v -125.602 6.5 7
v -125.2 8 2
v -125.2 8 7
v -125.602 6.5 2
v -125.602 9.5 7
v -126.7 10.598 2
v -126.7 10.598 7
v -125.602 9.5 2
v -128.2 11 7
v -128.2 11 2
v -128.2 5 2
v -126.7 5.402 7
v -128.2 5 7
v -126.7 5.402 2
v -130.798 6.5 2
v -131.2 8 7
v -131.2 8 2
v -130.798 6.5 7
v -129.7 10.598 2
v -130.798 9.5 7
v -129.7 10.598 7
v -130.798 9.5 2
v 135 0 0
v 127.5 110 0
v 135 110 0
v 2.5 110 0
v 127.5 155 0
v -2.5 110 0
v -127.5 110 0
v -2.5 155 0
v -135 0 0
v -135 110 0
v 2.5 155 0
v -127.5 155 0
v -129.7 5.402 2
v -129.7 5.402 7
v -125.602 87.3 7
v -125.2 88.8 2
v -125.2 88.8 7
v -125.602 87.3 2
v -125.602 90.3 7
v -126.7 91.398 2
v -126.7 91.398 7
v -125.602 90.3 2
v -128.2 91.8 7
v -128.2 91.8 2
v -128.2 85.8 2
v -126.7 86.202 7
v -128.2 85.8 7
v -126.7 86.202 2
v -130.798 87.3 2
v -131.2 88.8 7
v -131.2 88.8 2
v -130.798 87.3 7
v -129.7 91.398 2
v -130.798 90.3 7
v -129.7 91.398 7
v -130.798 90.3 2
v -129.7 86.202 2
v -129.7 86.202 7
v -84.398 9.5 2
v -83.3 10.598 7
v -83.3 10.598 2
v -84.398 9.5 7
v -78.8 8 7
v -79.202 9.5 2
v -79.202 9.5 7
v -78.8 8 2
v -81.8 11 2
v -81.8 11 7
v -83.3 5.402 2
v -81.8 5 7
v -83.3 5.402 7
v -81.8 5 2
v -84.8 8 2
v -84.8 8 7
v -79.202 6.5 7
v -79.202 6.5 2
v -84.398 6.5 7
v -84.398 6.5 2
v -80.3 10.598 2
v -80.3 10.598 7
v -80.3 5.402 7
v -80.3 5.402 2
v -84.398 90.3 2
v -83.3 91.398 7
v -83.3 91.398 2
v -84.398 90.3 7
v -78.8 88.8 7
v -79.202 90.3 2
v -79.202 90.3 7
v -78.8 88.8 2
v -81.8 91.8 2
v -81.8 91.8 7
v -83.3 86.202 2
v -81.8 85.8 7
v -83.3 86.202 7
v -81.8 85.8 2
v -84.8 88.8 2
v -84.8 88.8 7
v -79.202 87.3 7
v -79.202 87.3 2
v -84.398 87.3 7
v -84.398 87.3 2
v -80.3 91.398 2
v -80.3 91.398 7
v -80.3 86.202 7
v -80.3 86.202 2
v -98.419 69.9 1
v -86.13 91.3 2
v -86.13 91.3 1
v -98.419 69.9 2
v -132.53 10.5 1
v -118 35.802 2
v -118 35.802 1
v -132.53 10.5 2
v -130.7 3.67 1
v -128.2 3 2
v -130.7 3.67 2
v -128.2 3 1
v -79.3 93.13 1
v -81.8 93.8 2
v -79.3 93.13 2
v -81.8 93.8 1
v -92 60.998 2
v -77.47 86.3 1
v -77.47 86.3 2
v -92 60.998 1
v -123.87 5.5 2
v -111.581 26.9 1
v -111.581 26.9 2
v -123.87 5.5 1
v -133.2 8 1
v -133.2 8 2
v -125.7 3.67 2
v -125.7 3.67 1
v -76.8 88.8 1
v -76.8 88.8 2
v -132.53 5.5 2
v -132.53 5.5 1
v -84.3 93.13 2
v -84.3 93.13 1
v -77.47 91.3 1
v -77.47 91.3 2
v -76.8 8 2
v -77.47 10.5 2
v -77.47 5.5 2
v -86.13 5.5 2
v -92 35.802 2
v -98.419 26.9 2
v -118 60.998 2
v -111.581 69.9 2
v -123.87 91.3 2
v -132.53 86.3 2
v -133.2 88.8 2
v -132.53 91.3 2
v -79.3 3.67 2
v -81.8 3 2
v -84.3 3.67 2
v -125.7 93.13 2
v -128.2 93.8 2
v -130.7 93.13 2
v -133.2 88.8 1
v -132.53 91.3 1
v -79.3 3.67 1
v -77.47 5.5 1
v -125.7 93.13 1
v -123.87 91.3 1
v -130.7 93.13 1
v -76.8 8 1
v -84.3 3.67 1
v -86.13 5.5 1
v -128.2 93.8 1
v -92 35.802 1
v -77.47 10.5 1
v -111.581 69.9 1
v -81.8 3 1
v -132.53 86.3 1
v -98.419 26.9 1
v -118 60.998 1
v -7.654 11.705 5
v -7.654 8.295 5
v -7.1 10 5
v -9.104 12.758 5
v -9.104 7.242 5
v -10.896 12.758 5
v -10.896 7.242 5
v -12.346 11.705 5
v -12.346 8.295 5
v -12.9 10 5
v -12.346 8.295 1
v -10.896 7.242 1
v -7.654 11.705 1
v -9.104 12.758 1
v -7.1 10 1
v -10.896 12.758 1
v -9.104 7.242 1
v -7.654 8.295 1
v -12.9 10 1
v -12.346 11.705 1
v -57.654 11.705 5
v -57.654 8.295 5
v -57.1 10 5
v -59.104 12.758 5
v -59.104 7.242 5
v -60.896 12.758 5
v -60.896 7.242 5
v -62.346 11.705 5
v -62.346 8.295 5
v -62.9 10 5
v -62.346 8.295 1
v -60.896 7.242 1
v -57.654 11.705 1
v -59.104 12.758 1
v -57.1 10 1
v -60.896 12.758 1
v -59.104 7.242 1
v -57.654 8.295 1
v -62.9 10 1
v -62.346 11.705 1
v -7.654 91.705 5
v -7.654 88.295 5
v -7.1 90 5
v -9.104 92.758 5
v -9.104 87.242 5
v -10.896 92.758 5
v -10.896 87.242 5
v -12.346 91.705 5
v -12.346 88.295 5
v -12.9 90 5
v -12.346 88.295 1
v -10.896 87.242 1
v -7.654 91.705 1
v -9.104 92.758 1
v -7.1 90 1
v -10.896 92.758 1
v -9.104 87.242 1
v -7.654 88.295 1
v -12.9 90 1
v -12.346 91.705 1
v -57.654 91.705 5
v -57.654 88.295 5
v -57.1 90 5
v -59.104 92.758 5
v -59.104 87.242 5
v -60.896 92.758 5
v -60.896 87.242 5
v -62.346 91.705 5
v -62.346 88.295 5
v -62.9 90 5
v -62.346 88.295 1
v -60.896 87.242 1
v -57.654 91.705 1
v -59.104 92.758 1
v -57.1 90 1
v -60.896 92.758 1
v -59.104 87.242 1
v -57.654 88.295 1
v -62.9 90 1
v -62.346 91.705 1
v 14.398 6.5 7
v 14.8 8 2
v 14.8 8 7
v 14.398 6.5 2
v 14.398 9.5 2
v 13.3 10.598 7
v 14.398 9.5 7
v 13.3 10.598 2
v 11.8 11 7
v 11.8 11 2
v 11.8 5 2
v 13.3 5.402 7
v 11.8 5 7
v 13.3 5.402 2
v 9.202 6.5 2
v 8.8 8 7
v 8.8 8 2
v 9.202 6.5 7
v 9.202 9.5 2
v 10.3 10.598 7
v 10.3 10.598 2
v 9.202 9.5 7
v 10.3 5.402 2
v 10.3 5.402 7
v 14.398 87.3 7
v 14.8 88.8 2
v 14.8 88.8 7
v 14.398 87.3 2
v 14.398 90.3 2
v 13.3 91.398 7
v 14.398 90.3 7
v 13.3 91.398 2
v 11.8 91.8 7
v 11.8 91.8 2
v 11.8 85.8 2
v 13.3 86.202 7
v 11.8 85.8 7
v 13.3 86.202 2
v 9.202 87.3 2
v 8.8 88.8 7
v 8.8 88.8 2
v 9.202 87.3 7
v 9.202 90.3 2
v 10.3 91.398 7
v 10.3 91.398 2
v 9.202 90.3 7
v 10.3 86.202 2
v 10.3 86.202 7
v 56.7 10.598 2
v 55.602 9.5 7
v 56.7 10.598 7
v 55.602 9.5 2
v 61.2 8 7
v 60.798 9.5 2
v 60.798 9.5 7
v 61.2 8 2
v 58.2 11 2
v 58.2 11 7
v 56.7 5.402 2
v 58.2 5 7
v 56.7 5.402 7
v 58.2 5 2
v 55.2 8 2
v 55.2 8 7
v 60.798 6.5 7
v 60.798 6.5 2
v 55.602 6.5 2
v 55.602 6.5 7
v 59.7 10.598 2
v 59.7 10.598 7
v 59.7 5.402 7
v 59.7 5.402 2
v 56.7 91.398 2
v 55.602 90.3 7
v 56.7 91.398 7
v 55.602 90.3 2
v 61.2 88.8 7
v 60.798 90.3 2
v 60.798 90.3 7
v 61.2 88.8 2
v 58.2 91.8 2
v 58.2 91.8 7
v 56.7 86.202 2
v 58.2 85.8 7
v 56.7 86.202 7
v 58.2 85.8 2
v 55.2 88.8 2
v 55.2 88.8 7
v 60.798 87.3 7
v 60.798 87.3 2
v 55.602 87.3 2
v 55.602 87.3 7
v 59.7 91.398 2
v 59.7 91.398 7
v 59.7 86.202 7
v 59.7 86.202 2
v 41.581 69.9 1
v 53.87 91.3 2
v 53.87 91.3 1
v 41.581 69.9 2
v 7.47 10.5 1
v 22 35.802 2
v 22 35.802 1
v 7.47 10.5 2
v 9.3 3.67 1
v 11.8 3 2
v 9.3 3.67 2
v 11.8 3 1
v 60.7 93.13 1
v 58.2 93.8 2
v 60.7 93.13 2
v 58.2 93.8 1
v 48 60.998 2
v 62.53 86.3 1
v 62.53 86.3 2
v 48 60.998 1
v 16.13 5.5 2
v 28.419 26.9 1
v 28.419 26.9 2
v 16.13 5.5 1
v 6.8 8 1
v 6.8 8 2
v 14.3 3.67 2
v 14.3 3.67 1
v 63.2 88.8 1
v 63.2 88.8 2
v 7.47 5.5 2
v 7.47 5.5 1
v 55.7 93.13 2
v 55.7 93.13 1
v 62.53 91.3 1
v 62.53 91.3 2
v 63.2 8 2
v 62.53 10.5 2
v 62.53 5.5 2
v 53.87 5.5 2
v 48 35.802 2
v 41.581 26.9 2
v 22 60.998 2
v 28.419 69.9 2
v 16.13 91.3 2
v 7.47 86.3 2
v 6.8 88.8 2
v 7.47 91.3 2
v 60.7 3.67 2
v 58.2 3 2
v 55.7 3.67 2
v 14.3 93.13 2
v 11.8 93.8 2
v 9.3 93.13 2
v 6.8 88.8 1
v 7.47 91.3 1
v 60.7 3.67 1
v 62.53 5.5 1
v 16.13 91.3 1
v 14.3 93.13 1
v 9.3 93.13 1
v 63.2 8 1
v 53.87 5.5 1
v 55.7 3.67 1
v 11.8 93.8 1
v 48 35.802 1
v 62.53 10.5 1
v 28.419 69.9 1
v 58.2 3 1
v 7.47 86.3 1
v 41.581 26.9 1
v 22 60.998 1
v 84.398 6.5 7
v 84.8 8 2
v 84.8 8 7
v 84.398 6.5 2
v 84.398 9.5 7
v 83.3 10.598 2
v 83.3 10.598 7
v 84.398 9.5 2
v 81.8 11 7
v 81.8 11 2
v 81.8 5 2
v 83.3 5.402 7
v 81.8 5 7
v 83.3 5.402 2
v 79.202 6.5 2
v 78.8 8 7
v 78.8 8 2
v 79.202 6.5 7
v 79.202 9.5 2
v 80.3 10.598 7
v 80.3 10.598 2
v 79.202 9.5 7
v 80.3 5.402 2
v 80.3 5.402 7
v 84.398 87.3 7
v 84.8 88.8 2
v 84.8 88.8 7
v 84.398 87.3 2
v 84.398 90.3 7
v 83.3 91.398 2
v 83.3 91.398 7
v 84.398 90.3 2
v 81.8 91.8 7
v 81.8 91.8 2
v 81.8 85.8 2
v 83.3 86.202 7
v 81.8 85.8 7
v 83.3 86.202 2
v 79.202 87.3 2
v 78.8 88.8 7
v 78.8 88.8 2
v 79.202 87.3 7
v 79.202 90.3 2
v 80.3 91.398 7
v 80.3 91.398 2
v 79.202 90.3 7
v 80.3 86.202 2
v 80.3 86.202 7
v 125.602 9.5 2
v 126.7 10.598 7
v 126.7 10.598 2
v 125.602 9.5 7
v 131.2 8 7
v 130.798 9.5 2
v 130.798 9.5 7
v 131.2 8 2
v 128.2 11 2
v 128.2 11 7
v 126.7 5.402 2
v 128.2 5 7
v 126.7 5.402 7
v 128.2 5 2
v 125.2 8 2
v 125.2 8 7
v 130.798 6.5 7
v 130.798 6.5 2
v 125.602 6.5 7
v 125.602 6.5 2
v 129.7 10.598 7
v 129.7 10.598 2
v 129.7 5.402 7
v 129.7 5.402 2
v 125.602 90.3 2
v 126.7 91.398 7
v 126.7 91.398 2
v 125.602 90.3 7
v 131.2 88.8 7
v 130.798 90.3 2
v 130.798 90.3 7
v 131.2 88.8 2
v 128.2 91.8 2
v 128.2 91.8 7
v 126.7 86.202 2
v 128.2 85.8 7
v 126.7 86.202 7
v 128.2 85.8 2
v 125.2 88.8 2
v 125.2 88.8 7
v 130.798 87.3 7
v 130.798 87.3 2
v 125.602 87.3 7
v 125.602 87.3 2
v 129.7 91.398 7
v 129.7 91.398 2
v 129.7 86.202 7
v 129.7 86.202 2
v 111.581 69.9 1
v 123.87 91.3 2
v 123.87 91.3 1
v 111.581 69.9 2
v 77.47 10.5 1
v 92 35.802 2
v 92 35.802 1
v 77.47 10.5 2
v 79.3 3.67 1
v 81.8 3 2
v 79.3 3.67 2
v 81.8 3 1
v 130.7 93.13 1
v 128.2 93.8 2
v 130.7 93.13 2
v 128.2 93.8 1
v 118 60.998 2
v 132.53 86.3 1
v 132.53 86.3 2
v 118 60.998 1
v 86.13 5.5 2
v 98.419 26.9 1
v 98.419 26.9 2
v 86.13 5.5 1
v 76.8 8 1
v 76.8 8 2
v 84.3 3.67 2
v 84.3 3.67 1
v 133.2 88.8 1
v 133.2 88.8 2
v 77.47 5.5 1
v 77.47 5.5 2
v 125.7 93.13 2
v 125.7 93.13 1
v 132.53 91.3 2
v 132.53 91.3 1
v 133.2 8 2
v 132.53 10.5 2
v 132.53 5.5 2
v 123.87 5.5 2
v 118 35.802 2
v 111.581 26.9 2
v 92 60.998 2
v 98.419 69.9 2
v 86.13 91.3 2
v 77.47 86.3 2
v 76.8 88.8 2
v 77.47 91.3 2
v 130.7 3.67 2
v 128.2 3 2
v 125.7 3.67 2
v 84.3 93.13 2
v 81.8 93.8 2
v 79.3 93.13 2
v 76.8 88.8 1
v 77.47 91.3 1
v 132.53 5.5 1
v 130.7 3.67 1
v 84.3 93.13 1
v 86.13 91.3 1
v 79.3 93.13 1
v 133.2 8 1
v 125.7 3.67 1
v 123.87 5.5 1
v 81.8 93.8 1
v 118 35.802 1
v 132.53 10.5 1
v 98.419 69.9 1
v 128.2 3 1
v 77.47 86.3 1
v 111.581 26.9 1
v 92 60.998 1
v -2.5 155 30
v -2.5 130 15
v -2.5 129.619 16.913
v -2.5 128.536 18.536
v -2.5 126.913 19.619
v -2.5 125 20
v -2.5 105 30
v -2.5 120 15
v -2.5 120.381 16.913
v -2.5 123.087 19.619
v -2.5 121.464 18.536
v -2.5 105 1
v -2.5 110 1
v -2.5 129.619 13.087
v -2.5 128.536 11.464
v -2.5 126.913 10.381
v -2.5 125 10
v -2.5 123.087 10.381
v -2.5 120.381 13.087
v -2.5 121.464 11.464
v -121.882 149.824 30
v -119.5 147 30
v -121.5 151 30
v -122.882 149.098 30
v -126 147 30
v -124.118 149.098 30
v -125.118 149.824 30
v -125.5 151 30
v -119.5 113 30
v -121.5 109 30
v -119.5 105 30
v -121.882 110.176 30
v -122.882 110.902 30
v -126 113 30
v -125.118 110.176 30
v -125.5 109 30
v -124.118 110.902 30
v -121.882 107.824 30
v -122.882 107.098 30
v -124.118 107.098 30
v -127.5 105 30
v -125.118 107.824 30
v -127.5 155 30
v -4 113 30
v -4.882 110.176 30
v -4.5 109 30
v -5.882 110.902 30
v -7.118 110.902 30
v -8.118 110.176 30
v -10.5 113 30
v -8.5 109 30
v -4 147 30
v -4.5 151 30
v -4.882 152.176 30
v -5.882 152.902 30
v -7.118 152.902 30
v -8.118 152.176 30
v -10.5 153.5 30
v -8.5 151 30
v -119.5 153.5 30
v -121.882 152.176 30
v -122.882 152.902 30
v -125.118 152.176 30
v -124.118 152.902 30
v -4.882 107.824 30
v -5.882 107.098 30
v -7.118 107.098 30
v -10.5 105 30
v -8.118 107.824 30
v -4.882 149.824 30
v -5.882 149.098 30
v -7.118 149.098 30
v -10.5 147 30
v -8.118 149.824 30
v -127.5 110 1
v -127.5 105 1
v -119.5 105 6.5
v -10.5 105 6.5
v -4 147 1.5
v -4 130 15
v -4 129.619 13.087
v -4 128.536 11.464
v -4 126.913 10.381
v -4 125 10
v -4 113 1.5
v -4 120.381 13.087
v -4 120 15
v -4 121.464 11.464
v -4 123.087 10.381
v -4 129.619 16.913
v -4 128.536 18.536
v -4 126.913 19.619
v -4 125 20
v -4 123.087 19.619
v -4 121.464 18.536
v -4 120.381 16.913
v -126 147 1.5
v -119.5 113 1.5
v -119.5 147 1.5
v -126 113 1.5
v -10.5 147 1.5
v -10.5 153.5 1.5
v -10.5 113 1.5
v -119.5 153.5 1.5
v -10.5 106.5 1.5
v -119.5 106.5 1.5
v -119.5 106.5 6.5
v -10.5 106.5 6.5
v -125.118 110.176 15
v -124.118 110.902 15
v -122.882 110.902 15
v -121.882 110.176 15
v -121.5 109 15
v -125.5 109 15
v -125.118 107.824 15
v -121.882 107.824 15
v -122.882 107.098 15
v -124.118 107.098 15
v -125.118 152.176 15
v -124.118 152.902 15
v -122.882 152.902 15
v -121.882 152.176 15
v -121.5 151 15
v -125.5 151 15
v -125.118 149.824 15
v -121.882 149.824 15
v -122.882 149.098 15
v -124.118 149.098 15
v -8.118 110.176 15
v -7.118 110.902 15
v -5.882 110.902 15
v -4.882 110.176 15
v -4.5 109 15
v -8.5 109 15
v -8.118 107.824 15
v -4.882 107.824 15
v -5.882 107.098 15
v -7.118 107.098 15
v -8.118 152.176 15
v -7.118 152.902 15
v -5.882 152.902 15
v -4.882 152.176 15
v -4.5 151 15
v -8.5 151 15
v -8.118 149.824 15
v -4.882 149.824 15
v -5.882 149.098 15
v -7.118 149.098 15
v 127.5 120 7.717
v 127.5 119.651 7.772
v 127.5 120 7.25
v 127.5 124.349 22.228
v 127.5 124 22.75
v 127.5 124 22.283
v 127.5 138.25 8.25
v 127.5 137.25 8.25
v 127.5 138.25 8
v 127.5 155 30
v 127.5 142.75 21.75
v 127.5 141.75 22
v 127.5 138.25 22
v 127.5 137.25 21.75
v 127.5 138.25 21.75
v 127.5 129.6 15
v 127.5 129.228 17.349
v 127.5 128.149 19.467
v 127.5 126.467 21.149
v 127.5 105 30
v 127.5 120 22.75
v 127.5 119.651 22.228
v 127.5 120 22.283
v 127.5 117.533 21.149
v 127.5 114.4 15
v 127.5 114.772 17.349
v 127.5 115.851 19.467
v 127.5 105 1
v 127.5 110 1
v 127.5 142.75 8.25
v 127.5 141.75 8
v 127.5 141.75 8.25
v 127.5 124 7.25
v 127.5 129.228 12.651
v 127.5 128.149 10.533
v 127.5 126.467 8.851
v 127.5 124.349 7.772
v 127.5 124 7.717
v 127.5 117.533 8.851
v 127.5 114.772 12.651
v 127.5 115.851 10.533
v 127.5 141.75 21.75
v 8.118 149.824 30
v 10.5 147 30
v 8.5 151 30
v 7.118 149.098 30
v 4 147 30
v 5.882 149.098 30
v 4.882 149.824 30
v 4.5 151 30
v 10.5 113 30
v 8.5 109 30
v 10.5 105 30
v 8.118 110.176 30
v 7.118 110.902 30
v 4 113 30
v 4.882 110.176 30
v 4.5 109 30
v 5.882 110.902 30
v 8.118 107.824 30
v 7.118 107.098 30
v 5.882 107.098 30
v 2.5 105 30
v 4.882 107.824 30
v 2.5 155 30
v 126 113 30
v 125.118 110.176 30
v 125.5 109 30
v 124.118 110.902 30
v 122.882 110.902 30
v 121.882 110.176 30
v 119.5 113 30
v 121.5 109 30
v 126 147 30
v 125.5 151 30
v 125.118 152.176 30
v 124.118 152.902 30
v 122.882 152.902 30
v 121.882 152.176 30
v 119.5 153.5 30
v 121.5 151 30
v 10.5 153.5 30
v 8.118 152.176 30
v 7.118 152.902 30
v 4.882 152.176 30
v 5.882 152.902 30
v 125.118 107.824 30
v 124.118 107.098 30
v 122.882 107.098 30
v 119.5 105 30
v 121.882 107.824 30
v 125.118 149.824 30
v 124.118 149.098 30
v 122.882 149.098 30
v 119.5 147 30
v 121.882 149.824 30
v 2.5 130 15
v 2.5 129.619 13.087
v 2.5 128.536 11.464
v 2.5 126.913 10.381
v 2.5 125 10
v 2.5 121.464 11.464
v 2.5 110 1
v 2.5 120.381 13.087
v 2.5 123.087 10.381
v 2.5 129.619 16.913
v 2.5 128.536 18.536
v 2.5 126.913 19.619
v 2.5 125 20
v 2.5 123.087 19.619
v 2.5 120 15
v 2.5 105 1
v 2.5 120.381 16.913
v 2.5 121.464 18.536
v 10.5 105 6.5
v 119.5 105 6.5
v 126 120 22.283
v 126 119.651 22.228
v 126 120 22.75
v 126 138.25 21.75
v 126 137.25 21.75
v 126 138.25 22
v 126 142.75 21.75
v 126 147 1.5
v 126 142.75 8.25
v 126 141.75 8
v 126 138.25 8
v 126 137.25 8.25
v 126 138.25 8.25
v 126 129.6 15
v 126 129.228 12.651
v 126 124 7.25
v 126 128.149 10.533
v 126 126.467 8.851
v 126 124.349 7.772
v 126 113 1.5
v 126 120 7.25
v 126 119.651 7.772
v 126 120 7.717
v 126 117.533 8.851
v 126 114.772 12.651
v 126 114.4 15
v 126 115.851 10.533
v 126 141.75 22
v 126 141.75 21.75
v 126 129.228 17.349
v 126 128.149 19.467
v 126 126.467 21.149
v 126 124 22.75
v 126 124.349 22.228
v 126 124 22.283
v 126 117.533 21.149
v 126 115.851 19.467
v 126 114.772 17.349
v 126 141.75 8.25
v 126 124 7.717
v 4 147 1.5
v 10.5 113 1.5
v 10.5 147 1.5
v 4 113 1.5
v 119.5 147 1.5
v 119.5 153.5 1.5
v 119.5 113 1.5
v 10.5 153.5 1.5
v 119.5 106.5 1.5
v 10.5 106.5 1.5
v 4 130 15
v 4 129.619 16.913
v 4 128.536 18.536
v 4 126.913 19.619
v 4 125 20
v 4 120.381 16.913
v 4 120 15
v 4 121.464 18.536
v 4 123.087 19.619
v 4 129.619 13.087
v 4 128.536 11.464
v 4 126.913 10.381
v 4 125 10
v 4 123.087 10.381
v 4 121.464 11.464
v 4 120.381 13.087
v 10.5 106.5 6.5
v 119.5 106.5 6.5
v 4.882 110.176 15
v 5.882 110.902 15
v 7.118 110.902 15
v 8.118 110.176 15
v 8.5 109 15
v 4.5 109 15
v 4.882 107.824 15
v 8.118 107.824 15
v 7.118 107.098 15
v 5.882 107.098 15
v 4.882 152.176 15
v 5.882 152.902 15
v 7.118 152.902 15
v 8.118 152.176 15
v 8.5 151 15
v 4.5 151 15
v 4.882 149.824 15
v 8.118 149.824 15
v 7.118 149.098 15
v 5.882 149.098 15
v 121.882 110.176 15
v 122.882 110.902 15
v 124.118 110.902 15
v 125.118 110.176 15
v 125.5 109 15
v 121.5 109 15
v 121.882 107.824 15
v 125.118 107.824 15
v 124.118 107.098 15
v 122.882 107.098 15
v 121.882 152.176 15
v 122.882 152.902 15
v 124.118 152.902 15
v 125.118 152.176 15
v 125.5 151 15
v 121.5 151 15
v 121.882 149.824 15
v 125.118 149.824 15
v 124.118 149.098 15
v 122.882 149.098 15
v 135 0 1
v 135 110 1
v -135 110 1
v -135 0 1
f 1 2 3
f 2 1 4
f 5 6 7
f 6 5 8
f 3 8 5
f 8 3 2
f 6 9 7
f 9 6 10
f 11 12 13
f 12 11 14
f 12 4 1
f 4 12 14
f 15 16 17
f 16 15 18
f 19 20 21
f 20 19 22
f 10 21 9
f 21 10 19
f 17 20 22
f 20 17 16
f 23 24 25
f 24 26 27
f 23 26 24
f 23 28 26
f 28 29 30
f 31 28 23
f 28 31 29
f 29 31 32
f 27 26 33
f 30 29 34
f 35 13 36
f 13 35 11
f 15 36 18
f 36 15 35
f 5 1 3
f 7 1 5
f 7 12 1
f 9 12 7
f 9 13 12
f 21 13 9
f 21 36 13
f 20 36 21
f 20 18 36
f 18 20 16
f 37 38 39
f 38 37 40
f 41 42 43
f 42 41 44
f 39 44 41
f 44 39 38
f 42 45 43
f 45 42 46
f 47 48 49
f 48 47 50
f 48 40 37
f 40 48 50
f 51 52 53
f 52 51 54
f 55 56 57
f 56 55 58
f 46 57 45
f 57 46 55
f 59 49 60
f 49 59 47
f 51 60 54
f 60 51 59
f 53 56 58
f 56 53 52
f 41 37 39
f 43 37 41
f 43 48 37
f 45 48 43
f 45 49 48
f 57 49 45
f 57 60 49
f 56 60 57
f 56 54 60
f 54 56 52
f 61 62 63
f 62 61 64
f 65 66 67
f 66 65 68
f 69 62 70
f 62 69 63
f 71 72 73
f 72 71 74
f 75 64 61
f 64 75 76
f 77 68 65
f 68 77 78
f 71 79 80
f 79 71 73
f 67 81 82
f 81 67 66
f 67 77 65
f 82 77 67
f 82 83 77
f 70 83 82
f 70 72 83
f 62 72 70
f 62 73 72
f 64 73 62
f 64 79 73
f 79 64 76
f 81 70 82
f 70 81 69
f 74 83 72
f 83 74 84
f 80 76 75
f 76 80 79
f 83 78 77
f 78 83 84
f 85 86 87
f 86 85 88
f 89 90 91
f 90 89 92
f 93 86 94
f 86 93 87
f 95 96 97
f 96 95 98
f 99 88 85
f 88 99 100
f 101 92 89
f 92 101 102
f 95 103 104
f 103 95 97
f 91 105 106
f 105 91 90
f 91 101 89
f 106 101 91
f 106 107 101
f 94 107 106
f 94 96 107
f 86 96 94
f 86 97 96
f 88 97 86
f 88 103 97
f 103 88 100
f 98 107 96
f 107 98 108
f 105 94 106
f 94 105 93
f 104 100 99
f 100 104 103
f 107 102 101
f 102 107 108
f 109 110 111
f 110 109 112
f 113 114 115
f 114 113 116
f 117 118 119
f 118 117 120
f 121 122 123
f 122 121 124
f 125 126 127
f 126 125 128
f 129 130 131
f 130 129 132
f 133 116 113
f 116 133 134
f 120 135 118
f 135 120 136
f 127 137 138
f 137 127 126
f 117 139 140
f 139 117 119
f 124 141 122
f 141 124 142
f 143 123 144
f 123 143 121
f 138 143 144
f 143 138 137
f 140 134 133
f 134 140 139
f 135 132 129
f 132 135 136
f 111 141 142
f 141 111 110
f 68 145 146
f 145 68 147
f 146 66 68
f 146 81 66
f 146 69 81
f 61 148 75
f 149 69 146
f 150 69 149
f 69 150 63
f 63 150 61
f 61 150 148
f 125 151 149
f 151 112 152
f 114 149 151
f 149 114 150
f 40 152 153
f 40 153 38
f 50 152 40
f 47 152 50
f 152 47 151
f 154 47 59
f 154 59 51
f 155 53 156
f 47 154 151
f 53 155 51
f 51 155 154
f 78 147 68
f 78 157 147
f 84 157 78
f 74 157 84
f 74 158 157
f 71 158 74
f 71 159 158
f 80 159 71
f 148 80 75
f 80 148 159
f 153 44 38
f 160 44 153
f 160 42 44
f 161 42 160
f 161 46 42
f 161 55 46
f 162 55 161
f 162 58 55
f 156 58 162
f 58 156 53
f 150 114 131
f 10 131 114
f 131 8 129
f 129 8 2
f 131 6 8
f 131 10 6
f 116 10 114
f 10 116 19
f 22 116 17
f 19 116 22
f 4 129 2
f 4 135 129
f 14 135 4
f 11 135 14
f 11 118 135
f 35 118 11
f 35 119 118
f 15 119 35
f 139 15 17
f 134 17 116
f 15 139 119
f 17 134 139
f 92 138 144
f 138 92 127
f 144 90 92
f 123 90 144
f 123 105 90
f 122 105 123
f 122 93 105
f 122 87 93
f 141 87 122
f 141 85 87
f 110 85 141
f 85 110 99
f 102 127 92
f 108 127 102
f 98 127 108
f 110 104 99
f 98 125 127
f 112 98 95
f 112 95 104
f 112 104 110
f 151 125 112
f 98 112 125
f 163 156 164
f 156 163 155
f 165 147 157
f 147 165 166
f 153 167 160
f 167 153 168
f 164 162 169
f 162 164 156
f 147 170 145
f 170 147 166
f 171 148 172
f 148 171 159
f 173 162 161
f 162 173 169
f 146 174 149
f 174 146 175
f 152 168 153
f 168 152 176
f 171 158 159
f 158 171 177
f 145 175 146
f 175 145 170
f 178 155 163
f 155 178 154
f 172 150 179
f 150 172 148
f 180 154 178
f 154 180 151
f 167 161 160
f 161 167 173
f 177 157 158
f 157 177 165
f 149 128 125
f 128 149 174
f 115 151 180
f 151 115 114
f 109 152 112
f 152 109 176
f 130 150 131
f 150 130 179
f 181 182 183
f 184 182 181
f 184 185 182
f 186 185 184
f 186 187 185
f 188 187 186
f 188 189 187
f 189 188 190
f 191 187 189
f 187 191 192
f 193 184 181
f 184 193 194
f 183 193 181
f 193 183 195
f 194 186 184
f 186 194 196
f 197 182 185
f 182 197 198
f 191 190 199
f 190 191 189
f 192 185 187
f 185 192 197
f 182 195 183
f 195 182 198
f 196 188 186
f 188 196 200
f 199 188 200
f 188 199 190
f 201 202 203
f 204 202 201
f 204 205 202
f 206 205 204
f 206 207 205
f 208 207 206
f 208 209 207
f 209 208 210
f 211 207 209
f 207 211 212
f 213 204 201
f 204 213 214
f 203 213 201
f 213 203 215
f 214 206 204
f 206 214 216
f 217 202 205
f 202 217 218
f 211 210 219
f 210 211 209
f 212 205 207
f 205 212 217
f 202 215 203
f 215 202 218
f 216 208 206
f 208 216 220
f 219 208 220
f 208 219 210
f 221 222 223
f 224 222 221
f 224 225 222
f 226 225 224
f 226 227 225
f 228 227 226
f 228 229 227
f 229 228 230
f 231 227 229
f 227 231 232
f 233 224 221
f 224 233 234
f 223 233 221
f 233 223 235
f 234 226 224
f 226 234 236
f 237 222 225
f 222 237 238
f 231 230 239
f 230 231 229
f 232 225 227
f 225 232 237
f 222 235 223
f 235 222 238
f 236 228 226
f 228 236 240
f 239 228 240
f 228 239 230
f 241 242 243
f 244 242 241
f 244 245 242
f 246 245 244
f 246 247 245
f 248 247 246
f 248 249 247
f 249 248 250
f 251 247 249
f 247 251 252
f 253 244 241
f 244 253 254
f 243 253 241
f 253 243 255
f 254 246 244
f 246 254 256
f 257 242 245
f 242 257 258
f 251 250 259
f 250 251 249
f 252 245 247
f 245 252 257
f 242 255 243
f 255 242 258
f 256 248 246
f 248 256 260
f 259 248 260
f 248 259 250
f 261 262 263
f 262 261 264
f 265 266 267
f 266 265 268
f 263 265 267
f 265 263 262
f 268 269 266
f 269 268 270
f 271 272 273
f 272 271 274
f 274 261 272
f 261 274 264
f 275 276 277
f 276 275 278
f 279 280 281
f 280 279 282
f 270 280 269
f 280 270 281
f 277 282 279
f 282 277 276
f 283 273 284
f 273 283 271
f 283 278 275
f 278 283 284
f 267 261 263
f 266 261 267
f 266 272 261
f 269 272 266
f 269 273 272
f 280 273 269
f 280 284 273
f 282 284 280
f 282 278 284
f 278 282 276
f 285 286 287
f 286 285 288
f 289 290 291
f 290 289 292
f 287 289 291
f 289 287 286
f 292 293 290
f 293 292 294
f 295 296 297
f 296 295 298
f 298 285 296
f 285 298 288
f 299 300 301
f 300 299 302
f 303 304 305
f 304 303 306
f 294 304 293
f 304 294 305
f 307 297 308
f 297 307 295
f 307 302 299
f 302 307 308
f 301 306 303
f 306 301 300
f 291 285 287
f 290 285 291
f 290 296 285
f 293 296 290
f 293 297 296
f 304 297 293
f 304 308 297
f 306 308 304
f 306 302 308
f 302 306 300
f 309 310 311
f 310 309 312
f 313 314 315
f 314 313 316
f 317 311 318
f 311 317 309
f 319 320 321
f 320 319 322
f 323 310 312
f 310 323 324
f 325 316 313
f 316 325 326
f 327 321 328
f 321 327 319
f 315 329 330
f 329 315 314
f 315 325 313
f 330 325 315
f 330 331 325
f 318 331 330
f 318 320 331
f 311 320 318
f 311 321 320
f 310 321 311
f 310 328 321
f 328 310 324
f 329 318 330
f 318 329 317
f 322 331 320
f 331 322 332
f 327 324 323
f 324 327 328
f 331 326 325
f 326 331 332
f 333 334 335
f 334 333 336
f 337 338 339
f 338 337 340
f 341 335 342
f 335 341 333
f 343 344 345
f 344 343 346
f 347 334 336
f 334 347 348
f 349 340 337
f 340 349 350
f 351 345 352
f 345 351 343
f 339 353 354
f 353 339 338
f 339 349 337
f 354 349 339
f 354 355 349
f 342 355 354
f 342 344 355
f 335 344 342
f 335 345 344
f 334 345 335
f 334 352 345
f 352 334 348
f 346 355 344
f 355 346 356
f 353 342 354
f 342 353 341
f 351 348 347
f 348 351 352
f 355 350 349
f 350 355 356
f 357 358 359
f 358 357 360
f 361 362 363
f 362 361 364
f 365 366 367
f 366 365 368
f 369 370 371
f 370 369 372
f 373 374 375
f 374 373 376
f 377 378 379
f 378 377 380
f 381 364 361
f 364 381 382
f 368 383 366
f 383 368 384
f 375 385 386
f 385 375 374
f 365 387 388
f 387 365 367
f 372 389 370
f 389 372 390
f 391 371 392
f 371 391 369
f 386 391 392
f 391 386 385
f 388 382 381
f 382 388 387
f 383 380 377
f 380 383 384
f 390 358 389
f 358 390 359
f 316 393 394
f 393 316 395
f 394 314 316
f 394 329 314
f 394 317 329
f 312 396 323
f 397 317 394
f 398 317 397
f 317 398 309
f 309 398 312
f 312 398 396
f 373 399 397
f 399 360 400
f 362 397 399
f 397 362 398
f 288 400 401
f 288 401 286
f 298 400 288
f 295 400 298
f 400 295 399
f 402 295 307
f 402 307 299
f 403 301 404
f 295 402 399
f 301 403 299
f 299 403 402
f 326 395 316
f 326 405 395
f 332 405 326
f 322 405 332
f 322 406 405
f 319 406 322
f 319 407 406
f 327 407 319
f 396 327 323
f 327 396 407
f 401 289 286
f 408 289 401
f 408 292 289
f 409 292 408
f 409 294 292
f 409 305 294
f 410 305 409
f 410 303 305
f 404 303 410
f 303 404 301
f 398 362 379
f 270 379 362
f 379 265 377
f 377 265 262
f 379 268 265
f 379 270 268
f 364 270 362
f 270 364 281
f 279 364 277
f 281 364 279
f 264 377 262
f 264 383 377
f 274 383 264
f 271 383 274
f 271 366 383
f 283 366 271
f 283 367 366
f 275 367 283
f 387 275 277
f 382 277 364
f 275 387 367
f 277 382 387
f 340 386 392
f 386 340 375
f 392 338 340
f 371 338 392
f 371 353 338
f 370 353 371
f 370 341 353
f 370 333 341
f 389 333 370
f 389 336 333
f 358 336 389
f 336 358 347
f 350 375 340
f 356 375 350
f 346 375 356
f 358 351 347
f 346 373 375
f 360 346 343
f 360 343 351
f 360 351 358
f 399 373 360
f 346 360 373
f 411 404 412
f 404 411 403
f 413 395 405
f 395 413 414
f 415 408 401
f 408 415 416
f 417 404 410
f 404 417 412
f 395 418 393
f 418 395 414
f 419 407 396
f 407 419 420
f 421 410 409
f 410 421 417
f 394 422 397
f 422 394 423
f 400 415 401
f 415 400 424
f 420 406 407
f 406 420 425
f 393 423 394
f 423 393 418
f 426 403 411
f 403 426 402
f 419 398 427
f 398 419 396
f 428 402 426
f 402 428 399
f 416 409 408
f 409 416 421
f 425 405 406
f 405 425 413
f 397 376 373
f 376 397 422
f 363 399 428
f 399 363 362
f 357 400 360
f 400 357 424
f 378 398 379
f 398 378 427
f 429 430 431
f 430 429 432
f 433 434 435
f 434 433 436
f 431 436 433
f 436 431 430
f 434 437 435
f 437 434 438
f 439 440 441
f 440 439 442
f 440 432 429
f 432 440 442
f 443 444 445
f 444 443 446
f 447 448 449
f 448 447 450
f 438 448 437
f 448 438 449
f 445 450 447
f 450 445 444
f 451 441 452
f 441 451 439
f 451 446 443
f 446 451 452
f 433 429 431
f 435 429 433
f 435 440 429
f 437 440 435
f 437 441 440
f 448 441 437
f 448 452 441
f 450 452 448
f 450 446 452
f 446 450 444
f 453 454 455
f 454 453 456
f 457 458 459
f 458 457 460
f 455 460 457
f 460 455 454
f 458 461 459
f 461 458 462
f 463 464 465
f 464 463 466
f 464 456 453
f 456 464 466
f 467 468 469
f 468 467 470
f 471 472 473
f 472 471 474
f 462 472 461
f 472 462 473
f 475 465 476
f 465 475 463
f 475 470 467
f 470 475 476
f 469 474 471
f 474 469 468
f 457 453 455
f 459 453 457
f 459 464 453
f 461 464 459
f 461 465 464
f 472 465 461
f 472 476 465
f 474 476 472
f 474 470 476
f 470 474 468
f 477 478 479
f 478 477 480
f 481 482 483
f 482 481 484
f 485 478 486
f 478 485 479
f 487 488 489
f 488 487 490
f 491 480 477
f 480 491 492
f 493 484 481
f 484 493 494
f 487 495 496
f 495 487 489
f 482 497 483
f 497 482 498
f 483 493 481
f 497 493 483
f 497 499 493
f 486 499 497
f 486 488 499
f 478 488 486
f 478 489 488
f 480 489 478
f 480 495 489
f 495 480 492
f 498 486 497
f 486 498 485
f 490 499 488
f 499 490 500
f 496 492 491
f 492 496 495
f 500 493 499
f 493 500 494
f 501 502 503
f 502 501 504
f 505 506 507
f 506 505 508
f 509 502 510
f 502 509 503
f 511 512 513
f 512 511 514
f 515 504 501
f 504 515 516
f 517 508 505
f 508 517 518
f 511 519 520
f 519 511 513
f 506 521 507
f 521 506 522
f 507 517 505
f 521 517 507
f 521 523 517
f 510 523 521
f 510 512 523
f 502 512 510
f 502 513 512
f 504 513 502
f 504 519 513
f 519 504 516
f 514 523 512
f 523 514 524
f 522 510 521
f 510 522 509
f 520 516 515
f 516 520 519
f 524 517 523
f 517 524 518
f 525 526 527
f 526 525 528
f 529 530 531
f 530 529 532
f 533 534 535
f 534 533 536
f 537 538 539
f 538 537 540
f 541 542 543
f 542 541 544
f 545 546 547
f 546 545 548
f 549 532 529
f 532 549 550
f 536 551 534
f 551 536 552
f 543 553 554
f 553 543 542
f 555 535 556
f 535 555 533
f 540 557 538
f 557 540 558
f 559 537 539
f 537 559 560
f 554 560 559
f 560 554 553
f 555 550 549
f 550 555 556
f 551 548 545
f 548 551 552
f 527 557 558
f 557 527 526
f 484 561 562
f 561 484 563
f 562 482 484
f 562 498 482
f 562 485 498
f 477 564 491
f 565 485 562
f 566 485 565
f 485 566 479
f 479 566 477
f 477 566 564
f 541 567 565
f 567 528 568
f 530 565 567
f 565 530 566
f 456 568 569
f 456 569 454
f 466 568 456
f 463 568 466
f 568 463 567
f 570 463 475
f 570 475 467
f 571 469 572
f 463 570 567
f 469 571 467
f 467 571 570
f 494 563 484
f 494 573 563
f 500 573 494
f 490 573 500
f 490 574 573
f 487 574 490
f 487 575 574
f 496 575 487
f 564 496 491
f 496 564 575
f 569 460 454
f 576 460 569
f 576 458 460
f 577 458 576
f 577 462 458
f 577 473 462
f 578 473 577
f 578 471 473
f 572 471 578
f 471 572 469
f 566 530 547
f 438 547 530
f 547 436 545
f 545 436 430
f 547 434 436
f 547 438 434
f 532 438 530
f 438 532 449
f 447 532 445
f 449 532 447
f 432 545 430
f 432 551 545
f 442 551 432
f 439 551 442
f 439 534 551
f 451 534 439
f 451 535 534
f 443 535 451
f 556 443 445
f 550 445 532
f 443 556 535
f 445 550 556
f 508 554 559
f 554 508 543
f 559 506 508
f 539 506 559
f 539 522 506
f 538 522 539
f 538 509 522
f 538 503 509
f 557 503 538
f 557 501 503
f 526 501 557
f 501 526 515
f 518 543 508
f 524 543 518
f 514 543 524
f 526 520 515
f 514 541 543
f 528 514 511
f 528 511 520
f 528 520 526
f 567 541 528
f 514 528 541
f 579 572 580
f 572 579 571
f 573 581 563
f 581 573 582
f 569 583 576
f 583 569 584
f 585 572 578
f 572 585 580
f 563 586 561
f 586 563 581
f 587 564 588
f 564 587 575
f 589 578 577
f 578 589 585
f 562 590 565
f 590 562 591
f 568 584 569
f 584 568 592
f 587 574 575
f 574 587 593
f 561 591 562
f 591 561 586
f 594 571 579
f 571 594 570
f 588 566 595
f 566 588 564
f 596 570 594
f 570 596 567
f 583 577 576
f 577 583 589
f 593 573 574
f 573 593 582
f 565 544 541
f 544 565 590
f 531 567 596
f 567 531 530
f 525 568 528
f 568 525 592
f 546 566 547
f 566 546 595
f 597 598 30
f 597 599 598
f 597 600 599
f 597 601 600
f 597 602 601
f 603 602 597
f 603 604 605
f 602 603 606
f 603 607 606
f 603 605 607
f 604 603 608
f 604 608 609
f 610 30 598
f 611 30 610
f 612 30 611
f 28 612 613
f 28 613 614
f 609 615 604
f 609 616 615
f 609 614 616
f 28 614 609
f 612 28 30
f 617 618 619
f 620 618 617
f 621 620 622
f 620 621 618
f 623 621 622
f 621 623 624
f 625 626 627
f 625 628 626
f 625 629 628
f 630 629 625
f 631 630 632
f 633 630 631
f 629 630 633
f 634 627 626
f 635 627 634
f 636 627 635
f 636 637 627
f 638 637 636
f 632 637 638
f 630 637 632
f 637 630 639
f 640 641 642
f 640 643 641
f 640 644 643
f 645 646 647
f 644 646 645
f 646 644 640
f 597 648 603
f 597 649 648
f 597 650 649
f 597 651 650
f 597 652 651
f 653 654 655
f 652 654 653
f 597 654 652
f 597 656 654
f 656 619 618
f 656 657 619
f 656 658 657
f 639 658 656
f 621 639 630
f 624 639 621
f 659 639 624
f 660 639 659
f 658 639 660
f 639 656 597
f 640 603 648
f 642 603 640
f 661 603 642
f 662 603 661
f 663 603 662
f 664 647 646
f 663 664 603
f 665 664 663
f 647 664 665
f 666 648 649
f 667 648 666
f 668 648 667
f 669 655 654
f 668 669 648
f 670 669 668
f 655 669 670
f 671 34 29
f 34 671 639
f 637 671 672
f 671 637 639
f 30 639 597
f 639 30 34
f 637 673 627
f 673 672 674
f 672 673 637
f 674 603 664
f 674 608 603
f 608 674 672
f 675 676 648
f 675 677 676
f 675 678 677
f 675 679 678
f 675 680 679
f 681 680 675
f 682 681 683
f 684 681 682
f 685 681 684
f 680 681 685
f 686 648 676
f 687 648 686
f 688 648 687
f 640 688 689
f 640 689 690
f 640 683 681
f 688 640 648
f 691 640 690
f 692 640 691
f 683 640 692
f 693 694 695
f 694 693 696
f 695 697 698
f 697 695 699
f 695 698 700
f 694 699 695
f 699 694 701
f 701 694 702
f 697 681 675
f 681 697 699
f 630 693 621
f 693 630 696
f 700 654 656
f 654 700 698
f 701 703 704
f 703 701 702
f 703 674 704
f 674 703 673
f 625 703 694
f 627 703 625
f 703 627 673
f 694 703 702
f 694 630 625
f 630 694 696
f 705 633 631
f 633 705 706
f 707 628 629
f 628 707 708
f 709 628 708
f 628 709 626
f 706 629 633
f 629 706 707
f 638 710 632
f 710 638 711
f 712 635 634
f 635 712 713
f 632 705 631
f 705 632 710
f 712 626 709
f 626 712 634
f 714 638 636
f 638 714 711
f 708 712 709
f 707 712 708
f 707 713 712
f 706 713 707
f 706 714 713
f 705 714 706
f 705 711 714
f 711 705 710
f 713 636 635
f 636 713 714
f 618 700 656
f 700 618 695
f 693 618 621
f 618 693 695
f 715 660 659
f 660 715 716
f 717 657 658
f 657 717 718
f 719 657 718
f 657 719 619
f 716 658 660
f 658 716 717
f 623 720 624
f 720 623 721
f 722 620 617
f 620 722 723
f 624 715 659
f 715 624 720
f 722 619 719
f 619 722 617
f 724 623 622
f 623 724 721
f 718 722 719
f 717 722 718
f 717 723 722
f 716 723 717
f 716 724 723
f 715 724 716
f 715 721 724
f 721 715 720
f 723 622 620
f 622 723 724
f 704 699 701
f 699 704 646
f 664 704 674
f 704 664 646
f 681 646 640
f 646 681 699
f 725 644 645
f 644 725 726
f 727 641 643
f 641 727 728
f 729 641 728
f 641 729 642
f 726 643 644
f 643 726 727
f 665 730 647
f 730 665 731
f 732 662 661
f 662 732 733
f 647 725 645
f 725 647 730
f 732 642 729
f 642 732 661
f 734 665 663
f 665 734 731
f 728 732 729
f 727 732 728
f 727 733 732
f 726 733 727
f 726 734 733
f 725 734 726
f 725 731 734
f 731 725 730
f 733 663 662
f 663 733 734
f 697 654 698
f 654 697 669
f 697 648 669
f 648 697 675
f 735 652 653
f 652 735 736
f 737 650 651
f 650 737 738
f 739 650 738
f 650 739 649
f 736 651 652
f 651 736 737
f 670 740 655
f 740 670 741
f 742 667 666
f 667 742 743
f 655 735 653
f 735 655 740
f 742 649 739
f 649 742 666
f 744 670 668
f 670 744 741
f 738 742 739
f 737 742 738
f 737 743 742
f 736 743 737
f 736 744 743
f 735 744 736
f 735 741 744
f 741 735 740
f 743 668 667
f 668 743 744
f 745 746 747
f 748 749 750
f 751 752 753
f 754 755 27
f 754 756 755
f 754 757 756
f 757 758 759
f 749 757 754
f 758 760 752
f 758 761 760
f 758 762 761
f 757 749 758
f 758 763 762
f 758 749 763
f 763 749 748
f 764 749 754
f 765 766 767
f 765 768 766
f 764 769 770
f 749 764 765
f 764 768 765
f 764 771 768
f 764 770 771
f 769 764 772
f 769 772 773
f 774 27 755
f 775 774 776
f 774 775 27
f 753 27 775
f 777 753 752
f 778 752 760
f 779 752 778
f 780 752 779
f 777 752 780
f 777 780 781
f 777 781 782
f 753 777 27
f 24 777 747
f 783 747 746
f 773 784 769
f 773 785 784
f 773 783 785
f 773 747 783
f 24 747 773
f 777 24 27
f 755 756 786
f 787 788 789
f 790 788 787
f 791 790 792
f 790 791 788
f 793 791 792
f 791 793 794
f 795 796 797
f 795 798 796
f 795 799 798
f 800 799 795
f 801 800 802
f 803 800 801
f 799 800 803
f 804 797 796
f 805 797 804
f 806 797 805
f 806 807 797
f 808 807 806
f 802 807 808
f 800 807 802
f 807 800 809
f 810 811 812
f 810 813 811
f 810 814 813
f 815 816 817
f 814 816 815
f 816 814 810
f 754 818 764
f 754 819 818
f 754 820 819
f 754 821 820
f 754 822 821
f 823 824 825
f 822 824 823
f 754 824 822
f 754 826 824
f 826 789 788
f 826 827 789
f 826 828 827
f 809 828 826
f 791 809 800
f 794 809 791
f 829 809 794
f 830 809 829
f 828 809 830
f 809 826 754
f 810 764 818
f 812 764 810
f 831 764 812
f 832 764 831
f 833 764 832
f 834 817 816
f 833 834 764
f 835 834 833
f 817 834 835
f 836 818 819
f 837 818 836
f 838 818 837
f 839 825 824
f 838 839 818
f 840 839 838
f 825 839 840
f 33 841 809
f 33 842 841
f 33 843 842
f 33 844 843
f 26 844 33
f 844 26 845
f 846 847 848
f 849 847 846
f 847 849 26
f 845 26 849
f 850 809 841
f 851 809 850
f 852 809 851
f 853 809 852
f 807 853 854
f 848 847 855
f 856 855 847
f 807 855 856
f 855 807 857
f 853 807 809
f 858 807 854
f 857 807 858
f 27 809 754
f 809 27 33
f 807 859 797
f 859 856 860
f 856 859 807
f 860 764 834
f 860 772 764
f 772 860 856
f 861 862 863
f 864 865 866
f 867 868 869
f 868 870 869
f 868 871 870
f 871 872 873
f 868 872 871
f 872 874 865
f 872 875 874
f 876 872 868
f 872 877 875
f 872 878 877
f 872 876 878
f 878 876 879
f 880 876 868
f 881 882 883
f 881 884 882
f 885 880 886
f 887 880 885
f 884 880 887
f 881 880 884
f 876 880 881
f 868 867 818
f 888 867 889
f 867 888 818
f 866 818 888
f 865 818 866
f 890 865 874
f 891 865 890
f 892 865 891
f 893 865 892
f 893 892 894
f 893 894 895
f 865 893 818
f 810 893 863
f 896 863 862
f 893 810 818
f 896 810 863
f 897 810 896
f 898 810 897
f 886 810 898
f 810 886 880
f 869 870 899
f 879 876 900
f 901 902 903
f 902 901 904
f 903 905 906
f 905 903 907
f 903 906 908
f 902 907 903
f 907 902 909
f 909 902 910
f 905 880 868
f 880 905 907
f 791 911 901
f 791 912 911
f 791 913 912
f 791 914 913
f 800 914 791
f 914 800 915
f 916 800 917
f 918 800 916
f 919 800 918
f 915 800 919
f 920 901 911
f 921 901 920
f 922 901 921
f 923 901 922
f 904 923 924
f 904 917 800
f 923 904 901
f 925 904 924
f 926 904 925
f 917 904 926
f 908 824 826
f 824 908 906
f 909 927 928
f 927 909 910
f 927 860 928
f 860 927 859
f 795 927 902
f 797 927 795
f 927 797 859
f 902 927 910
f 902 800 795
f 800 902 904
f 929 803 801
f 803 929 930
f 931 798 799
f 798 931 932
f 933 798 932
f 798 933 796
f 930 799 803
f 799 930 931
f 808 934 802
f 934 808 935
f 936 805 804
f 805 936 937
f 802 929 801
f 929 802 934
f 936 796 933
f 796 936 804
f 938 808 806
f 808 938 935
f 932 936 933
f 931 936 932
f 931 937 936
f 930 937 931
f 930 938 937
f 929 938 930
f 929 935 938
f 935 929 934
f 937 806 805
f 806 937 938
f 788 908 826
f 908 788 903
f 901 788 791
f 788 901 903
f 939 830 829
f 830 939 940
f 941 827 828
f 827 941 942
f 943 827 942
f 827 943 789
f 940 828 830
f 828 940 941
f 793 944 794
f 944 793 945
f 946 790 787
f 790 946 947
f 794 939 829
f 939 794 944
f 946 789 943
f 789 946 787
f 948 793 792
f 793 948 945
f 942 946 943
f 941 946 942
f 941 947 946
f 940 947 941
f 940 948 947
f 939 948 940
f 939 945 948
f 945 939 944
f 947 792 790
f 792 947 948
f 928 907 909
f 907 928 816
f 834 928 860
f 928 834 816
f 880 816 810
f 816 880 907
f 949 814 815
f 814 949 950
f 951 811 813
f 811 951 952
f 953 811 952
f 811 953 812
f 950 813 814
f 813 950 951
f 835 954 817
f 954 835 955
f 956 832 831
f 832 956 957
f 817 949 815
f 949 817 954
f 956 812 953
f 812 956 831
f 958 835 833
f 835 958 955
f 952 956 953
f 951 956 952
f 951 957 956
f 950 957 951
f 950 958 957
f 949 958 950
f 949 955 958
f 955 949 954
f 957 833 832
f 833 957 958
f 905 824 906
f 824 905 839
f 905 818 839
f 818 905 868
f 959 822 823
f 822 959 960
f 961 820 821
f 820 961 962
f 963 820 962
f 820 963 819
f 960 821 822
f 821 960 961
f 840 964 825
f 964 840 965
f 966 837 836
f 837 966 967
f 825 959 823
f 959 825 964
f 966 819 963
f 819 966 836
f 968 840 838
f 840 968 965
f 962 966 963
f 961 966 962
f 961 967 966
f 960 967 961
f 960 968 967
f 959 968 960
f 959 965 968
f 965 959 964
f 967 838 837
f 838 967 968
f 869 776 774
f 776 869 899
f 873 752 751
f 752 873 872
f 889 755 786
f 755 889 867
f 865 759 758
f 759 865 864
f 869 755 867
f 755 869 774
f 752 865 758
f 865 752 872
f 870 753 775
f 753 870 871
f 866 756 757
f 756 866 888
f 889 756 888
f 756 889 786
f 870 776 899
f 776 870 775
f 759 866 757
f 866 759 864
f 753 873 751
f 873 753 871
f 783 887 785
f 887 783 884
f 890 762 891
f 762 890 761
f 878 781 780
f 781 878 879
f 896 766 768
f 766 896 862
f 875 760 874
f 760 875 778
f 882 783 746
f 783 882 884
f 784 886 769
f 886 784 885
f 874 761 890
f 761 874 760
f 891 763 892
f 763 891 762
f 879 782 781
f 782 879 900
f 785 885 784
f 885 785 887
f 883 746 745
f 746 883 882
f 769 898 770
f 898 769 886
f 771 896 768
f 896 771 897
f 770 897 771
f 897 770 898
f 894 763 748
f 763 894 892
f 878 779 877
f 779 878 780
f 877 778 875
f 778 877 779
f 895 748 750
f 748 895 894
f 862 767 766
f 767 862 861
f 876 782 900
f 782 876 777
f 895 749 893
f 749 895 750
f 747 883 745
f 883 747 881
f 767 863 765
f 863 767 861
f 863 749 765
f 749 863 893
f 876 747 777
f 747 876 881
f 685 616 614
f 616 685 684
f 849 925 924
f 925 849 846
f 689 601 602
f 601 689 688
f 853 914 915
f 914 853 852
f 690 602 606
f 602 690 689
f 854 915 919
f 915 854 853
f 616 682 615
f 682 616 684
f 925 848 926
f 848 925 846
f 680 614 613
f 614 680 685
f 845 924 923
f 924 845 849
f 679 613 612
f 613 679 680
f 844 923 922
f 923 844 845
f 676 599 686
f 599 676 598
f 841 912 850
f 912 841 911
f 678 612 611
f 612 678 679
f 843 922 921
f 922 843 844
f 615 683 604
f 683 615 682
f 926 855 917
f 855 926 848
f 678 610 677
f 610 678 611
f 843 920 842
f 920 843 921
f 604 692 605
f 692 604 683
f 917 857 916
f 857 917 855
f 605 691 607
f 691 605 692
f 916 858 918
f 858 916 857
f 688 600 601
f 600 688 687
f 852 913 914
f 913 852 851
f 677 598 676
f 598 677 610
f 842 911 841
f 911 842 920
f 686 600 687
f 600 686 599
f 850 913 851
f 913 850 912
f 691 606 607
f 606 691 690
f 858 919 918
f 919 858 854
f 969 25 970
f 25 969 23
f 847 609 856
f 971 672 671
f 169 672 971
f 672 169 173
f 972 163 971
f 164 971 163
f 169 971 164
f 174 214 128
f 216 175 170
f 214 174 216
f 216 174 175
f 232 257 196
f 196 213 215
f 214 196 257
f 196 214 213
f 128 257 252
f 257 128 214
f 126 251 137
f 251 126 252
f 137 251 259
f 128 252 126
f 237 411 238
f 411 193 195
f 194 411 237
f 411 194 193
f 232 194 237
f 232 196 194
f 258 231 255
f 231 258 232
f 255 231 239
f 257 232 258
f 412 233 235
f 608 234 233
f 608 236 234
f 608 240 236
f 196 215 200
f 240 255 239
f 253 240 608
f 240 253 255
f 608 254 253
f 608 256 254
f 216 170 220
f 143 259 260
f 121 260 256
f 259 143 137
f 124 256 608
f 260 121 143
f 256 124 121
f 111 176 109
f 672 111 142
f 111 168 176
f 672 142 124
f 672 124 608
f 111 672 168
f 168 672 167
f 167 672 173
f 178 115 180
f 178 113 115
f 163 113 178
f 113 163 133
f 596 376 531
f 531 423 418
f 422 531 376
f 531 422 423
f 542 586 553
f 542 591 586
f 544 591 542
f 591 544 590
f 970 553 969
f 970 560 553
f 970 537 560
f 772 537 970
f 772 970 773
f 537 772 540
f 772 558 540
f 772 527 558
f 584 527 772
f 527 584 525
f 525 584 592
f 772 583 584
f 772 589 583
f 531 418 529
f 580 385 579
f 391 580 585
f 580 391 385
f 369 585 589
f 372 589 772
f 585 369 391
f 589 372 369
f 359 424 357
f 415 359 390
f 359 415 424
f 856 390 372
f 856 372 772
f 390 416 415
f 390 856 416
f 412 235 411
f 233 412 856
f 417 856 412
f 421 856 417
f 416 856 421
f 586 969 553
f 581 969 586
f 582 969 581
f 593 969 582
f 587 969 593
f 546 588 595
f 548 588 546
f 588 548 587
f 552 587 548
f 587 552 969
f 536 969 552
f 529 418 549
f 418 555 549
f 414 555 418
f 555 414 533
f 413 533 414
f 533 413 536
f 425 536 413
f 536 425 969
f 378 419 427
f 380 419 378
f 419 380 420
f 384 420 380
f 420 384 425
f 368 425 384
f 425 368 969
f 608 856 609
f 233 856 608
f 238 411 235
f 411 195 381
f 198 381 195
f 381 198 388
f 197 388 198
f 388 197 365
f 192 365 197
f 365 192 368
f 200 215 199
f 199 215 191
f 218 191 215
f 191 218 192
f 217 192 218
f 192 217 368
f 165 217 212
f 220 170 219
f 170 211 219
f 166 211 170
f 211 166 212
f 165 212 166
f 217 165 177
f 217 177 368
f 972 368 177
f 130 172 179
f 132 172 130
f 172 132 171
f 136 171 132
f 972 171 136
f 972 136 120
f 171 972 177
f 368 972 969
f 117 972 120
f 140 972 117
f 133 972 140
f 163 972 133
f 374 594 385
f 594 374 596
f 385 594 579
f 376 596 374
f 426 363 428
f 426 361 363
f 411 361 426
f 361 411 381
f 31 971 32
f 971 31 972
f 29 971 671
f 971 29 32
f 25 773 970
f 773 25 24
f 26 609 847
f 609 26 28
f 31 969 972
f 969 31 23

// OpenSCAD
translate([-270/2,0,0]) cube([270, 110, 1]);

translate([-70*2+70/2,0,0]) union(){
    pedal();
    translate([70,0,0]) control_box();
    translate([70*2,0,0]) pedal();
    translate([70*3,0,0]) pedal();
}

difference() {
    union() {
        translate([-65,100+25+5,0]) wire_box();
        translate([65,100+25+5,0]) wire_box();
    }
    translate([0,125,15])rotate([0,90,0]) cylinder(h=30,r=5,center=true);
    translate([125,125+15,15]) usb_c();
    translate([125,125-3,15]) pwr_sw();
}

module pedal() {
    w = 46.4;   // 사각형 가로 (X)
    h = 80.8;   // 사각형 세로 (Y)
    r = 3;      // 실린더 반지름
    hgt = 7;    // 실린더 높이
    $fn = 12;
    translate([0,h/2+8,0]) {
        for (x = [-w/2, w/2], y = [-h/2, h/2]) {
            translate([x, y, 0])
                cylinder(r = r, h = hgt);
        }
        
        hull() {
            translate([-w/2, -h/2, 0]) cylinder(r=r+2, h=2);
            translate([w/2, h/2, 0]) cylinder(r=r+2, h=2);
        }
        hull() {
            translate([-w/2, h/2, 0]) cylinder(r=r+2, h=2);
            translate([w/2, -h/2, 0]) cylinder(r=r+2, h=2);
        }
        
        translate([0,0,1]) cube([26,43,2], center=true);
    }
}

module control_box() {
    r=3-0.1;
    translate([25,10,0]) cylinder(5, r, r);
    translate([-25,10,0]) cylinder(5, r, r);
    translate([25,90,0]) cylinder(5, r, r);
    translate([-25,90,0]) cylinder(5, r, r);
}

module wire_box() {
    L = 125;  // X
    W = 50;   // Y
    H = 30;   // Z
    t = 1.5;  // 두께

    difference() {
        translate([-L/2, -W/2, 0])
            cube([L, W, H]);
        translate([-L/2 + t, -W/2 + t, t])
            cube([L - 2*t, W - 2*t, H - t + 1]);
        translate([-L/2 + t, -W/2 + t-5, t+5])
            cube([L - 2*t, W - 2*t, H - t + 1]);
    }
    
    for (x = [-L/2+4, L/2-4], y = [-W/2+4, W/2-4]) {
        translate([x,y,0]) box_pilla(H);
    }

}

module box_pilla(H) {
    translate([0,0,H/2]) difference() {
        cube([8,8,H], center=true);
        cylinder(H, 2, 2, $fn=10);
    }
}

module usb_c(){
    rotate([0,90,0]) union() {
        cube([13.5,5.5,20], center=true);
        cube([14,3.5,20], center=true);        
    }
}

module pwr_sw() {
    rotate([90,0,0]) rotate([0,90,0]) union() {
        cylinder(h=20,r=15.2/2,center=true,$fn=20);
        cube([4,15.5,30],center=true);
    }
}
